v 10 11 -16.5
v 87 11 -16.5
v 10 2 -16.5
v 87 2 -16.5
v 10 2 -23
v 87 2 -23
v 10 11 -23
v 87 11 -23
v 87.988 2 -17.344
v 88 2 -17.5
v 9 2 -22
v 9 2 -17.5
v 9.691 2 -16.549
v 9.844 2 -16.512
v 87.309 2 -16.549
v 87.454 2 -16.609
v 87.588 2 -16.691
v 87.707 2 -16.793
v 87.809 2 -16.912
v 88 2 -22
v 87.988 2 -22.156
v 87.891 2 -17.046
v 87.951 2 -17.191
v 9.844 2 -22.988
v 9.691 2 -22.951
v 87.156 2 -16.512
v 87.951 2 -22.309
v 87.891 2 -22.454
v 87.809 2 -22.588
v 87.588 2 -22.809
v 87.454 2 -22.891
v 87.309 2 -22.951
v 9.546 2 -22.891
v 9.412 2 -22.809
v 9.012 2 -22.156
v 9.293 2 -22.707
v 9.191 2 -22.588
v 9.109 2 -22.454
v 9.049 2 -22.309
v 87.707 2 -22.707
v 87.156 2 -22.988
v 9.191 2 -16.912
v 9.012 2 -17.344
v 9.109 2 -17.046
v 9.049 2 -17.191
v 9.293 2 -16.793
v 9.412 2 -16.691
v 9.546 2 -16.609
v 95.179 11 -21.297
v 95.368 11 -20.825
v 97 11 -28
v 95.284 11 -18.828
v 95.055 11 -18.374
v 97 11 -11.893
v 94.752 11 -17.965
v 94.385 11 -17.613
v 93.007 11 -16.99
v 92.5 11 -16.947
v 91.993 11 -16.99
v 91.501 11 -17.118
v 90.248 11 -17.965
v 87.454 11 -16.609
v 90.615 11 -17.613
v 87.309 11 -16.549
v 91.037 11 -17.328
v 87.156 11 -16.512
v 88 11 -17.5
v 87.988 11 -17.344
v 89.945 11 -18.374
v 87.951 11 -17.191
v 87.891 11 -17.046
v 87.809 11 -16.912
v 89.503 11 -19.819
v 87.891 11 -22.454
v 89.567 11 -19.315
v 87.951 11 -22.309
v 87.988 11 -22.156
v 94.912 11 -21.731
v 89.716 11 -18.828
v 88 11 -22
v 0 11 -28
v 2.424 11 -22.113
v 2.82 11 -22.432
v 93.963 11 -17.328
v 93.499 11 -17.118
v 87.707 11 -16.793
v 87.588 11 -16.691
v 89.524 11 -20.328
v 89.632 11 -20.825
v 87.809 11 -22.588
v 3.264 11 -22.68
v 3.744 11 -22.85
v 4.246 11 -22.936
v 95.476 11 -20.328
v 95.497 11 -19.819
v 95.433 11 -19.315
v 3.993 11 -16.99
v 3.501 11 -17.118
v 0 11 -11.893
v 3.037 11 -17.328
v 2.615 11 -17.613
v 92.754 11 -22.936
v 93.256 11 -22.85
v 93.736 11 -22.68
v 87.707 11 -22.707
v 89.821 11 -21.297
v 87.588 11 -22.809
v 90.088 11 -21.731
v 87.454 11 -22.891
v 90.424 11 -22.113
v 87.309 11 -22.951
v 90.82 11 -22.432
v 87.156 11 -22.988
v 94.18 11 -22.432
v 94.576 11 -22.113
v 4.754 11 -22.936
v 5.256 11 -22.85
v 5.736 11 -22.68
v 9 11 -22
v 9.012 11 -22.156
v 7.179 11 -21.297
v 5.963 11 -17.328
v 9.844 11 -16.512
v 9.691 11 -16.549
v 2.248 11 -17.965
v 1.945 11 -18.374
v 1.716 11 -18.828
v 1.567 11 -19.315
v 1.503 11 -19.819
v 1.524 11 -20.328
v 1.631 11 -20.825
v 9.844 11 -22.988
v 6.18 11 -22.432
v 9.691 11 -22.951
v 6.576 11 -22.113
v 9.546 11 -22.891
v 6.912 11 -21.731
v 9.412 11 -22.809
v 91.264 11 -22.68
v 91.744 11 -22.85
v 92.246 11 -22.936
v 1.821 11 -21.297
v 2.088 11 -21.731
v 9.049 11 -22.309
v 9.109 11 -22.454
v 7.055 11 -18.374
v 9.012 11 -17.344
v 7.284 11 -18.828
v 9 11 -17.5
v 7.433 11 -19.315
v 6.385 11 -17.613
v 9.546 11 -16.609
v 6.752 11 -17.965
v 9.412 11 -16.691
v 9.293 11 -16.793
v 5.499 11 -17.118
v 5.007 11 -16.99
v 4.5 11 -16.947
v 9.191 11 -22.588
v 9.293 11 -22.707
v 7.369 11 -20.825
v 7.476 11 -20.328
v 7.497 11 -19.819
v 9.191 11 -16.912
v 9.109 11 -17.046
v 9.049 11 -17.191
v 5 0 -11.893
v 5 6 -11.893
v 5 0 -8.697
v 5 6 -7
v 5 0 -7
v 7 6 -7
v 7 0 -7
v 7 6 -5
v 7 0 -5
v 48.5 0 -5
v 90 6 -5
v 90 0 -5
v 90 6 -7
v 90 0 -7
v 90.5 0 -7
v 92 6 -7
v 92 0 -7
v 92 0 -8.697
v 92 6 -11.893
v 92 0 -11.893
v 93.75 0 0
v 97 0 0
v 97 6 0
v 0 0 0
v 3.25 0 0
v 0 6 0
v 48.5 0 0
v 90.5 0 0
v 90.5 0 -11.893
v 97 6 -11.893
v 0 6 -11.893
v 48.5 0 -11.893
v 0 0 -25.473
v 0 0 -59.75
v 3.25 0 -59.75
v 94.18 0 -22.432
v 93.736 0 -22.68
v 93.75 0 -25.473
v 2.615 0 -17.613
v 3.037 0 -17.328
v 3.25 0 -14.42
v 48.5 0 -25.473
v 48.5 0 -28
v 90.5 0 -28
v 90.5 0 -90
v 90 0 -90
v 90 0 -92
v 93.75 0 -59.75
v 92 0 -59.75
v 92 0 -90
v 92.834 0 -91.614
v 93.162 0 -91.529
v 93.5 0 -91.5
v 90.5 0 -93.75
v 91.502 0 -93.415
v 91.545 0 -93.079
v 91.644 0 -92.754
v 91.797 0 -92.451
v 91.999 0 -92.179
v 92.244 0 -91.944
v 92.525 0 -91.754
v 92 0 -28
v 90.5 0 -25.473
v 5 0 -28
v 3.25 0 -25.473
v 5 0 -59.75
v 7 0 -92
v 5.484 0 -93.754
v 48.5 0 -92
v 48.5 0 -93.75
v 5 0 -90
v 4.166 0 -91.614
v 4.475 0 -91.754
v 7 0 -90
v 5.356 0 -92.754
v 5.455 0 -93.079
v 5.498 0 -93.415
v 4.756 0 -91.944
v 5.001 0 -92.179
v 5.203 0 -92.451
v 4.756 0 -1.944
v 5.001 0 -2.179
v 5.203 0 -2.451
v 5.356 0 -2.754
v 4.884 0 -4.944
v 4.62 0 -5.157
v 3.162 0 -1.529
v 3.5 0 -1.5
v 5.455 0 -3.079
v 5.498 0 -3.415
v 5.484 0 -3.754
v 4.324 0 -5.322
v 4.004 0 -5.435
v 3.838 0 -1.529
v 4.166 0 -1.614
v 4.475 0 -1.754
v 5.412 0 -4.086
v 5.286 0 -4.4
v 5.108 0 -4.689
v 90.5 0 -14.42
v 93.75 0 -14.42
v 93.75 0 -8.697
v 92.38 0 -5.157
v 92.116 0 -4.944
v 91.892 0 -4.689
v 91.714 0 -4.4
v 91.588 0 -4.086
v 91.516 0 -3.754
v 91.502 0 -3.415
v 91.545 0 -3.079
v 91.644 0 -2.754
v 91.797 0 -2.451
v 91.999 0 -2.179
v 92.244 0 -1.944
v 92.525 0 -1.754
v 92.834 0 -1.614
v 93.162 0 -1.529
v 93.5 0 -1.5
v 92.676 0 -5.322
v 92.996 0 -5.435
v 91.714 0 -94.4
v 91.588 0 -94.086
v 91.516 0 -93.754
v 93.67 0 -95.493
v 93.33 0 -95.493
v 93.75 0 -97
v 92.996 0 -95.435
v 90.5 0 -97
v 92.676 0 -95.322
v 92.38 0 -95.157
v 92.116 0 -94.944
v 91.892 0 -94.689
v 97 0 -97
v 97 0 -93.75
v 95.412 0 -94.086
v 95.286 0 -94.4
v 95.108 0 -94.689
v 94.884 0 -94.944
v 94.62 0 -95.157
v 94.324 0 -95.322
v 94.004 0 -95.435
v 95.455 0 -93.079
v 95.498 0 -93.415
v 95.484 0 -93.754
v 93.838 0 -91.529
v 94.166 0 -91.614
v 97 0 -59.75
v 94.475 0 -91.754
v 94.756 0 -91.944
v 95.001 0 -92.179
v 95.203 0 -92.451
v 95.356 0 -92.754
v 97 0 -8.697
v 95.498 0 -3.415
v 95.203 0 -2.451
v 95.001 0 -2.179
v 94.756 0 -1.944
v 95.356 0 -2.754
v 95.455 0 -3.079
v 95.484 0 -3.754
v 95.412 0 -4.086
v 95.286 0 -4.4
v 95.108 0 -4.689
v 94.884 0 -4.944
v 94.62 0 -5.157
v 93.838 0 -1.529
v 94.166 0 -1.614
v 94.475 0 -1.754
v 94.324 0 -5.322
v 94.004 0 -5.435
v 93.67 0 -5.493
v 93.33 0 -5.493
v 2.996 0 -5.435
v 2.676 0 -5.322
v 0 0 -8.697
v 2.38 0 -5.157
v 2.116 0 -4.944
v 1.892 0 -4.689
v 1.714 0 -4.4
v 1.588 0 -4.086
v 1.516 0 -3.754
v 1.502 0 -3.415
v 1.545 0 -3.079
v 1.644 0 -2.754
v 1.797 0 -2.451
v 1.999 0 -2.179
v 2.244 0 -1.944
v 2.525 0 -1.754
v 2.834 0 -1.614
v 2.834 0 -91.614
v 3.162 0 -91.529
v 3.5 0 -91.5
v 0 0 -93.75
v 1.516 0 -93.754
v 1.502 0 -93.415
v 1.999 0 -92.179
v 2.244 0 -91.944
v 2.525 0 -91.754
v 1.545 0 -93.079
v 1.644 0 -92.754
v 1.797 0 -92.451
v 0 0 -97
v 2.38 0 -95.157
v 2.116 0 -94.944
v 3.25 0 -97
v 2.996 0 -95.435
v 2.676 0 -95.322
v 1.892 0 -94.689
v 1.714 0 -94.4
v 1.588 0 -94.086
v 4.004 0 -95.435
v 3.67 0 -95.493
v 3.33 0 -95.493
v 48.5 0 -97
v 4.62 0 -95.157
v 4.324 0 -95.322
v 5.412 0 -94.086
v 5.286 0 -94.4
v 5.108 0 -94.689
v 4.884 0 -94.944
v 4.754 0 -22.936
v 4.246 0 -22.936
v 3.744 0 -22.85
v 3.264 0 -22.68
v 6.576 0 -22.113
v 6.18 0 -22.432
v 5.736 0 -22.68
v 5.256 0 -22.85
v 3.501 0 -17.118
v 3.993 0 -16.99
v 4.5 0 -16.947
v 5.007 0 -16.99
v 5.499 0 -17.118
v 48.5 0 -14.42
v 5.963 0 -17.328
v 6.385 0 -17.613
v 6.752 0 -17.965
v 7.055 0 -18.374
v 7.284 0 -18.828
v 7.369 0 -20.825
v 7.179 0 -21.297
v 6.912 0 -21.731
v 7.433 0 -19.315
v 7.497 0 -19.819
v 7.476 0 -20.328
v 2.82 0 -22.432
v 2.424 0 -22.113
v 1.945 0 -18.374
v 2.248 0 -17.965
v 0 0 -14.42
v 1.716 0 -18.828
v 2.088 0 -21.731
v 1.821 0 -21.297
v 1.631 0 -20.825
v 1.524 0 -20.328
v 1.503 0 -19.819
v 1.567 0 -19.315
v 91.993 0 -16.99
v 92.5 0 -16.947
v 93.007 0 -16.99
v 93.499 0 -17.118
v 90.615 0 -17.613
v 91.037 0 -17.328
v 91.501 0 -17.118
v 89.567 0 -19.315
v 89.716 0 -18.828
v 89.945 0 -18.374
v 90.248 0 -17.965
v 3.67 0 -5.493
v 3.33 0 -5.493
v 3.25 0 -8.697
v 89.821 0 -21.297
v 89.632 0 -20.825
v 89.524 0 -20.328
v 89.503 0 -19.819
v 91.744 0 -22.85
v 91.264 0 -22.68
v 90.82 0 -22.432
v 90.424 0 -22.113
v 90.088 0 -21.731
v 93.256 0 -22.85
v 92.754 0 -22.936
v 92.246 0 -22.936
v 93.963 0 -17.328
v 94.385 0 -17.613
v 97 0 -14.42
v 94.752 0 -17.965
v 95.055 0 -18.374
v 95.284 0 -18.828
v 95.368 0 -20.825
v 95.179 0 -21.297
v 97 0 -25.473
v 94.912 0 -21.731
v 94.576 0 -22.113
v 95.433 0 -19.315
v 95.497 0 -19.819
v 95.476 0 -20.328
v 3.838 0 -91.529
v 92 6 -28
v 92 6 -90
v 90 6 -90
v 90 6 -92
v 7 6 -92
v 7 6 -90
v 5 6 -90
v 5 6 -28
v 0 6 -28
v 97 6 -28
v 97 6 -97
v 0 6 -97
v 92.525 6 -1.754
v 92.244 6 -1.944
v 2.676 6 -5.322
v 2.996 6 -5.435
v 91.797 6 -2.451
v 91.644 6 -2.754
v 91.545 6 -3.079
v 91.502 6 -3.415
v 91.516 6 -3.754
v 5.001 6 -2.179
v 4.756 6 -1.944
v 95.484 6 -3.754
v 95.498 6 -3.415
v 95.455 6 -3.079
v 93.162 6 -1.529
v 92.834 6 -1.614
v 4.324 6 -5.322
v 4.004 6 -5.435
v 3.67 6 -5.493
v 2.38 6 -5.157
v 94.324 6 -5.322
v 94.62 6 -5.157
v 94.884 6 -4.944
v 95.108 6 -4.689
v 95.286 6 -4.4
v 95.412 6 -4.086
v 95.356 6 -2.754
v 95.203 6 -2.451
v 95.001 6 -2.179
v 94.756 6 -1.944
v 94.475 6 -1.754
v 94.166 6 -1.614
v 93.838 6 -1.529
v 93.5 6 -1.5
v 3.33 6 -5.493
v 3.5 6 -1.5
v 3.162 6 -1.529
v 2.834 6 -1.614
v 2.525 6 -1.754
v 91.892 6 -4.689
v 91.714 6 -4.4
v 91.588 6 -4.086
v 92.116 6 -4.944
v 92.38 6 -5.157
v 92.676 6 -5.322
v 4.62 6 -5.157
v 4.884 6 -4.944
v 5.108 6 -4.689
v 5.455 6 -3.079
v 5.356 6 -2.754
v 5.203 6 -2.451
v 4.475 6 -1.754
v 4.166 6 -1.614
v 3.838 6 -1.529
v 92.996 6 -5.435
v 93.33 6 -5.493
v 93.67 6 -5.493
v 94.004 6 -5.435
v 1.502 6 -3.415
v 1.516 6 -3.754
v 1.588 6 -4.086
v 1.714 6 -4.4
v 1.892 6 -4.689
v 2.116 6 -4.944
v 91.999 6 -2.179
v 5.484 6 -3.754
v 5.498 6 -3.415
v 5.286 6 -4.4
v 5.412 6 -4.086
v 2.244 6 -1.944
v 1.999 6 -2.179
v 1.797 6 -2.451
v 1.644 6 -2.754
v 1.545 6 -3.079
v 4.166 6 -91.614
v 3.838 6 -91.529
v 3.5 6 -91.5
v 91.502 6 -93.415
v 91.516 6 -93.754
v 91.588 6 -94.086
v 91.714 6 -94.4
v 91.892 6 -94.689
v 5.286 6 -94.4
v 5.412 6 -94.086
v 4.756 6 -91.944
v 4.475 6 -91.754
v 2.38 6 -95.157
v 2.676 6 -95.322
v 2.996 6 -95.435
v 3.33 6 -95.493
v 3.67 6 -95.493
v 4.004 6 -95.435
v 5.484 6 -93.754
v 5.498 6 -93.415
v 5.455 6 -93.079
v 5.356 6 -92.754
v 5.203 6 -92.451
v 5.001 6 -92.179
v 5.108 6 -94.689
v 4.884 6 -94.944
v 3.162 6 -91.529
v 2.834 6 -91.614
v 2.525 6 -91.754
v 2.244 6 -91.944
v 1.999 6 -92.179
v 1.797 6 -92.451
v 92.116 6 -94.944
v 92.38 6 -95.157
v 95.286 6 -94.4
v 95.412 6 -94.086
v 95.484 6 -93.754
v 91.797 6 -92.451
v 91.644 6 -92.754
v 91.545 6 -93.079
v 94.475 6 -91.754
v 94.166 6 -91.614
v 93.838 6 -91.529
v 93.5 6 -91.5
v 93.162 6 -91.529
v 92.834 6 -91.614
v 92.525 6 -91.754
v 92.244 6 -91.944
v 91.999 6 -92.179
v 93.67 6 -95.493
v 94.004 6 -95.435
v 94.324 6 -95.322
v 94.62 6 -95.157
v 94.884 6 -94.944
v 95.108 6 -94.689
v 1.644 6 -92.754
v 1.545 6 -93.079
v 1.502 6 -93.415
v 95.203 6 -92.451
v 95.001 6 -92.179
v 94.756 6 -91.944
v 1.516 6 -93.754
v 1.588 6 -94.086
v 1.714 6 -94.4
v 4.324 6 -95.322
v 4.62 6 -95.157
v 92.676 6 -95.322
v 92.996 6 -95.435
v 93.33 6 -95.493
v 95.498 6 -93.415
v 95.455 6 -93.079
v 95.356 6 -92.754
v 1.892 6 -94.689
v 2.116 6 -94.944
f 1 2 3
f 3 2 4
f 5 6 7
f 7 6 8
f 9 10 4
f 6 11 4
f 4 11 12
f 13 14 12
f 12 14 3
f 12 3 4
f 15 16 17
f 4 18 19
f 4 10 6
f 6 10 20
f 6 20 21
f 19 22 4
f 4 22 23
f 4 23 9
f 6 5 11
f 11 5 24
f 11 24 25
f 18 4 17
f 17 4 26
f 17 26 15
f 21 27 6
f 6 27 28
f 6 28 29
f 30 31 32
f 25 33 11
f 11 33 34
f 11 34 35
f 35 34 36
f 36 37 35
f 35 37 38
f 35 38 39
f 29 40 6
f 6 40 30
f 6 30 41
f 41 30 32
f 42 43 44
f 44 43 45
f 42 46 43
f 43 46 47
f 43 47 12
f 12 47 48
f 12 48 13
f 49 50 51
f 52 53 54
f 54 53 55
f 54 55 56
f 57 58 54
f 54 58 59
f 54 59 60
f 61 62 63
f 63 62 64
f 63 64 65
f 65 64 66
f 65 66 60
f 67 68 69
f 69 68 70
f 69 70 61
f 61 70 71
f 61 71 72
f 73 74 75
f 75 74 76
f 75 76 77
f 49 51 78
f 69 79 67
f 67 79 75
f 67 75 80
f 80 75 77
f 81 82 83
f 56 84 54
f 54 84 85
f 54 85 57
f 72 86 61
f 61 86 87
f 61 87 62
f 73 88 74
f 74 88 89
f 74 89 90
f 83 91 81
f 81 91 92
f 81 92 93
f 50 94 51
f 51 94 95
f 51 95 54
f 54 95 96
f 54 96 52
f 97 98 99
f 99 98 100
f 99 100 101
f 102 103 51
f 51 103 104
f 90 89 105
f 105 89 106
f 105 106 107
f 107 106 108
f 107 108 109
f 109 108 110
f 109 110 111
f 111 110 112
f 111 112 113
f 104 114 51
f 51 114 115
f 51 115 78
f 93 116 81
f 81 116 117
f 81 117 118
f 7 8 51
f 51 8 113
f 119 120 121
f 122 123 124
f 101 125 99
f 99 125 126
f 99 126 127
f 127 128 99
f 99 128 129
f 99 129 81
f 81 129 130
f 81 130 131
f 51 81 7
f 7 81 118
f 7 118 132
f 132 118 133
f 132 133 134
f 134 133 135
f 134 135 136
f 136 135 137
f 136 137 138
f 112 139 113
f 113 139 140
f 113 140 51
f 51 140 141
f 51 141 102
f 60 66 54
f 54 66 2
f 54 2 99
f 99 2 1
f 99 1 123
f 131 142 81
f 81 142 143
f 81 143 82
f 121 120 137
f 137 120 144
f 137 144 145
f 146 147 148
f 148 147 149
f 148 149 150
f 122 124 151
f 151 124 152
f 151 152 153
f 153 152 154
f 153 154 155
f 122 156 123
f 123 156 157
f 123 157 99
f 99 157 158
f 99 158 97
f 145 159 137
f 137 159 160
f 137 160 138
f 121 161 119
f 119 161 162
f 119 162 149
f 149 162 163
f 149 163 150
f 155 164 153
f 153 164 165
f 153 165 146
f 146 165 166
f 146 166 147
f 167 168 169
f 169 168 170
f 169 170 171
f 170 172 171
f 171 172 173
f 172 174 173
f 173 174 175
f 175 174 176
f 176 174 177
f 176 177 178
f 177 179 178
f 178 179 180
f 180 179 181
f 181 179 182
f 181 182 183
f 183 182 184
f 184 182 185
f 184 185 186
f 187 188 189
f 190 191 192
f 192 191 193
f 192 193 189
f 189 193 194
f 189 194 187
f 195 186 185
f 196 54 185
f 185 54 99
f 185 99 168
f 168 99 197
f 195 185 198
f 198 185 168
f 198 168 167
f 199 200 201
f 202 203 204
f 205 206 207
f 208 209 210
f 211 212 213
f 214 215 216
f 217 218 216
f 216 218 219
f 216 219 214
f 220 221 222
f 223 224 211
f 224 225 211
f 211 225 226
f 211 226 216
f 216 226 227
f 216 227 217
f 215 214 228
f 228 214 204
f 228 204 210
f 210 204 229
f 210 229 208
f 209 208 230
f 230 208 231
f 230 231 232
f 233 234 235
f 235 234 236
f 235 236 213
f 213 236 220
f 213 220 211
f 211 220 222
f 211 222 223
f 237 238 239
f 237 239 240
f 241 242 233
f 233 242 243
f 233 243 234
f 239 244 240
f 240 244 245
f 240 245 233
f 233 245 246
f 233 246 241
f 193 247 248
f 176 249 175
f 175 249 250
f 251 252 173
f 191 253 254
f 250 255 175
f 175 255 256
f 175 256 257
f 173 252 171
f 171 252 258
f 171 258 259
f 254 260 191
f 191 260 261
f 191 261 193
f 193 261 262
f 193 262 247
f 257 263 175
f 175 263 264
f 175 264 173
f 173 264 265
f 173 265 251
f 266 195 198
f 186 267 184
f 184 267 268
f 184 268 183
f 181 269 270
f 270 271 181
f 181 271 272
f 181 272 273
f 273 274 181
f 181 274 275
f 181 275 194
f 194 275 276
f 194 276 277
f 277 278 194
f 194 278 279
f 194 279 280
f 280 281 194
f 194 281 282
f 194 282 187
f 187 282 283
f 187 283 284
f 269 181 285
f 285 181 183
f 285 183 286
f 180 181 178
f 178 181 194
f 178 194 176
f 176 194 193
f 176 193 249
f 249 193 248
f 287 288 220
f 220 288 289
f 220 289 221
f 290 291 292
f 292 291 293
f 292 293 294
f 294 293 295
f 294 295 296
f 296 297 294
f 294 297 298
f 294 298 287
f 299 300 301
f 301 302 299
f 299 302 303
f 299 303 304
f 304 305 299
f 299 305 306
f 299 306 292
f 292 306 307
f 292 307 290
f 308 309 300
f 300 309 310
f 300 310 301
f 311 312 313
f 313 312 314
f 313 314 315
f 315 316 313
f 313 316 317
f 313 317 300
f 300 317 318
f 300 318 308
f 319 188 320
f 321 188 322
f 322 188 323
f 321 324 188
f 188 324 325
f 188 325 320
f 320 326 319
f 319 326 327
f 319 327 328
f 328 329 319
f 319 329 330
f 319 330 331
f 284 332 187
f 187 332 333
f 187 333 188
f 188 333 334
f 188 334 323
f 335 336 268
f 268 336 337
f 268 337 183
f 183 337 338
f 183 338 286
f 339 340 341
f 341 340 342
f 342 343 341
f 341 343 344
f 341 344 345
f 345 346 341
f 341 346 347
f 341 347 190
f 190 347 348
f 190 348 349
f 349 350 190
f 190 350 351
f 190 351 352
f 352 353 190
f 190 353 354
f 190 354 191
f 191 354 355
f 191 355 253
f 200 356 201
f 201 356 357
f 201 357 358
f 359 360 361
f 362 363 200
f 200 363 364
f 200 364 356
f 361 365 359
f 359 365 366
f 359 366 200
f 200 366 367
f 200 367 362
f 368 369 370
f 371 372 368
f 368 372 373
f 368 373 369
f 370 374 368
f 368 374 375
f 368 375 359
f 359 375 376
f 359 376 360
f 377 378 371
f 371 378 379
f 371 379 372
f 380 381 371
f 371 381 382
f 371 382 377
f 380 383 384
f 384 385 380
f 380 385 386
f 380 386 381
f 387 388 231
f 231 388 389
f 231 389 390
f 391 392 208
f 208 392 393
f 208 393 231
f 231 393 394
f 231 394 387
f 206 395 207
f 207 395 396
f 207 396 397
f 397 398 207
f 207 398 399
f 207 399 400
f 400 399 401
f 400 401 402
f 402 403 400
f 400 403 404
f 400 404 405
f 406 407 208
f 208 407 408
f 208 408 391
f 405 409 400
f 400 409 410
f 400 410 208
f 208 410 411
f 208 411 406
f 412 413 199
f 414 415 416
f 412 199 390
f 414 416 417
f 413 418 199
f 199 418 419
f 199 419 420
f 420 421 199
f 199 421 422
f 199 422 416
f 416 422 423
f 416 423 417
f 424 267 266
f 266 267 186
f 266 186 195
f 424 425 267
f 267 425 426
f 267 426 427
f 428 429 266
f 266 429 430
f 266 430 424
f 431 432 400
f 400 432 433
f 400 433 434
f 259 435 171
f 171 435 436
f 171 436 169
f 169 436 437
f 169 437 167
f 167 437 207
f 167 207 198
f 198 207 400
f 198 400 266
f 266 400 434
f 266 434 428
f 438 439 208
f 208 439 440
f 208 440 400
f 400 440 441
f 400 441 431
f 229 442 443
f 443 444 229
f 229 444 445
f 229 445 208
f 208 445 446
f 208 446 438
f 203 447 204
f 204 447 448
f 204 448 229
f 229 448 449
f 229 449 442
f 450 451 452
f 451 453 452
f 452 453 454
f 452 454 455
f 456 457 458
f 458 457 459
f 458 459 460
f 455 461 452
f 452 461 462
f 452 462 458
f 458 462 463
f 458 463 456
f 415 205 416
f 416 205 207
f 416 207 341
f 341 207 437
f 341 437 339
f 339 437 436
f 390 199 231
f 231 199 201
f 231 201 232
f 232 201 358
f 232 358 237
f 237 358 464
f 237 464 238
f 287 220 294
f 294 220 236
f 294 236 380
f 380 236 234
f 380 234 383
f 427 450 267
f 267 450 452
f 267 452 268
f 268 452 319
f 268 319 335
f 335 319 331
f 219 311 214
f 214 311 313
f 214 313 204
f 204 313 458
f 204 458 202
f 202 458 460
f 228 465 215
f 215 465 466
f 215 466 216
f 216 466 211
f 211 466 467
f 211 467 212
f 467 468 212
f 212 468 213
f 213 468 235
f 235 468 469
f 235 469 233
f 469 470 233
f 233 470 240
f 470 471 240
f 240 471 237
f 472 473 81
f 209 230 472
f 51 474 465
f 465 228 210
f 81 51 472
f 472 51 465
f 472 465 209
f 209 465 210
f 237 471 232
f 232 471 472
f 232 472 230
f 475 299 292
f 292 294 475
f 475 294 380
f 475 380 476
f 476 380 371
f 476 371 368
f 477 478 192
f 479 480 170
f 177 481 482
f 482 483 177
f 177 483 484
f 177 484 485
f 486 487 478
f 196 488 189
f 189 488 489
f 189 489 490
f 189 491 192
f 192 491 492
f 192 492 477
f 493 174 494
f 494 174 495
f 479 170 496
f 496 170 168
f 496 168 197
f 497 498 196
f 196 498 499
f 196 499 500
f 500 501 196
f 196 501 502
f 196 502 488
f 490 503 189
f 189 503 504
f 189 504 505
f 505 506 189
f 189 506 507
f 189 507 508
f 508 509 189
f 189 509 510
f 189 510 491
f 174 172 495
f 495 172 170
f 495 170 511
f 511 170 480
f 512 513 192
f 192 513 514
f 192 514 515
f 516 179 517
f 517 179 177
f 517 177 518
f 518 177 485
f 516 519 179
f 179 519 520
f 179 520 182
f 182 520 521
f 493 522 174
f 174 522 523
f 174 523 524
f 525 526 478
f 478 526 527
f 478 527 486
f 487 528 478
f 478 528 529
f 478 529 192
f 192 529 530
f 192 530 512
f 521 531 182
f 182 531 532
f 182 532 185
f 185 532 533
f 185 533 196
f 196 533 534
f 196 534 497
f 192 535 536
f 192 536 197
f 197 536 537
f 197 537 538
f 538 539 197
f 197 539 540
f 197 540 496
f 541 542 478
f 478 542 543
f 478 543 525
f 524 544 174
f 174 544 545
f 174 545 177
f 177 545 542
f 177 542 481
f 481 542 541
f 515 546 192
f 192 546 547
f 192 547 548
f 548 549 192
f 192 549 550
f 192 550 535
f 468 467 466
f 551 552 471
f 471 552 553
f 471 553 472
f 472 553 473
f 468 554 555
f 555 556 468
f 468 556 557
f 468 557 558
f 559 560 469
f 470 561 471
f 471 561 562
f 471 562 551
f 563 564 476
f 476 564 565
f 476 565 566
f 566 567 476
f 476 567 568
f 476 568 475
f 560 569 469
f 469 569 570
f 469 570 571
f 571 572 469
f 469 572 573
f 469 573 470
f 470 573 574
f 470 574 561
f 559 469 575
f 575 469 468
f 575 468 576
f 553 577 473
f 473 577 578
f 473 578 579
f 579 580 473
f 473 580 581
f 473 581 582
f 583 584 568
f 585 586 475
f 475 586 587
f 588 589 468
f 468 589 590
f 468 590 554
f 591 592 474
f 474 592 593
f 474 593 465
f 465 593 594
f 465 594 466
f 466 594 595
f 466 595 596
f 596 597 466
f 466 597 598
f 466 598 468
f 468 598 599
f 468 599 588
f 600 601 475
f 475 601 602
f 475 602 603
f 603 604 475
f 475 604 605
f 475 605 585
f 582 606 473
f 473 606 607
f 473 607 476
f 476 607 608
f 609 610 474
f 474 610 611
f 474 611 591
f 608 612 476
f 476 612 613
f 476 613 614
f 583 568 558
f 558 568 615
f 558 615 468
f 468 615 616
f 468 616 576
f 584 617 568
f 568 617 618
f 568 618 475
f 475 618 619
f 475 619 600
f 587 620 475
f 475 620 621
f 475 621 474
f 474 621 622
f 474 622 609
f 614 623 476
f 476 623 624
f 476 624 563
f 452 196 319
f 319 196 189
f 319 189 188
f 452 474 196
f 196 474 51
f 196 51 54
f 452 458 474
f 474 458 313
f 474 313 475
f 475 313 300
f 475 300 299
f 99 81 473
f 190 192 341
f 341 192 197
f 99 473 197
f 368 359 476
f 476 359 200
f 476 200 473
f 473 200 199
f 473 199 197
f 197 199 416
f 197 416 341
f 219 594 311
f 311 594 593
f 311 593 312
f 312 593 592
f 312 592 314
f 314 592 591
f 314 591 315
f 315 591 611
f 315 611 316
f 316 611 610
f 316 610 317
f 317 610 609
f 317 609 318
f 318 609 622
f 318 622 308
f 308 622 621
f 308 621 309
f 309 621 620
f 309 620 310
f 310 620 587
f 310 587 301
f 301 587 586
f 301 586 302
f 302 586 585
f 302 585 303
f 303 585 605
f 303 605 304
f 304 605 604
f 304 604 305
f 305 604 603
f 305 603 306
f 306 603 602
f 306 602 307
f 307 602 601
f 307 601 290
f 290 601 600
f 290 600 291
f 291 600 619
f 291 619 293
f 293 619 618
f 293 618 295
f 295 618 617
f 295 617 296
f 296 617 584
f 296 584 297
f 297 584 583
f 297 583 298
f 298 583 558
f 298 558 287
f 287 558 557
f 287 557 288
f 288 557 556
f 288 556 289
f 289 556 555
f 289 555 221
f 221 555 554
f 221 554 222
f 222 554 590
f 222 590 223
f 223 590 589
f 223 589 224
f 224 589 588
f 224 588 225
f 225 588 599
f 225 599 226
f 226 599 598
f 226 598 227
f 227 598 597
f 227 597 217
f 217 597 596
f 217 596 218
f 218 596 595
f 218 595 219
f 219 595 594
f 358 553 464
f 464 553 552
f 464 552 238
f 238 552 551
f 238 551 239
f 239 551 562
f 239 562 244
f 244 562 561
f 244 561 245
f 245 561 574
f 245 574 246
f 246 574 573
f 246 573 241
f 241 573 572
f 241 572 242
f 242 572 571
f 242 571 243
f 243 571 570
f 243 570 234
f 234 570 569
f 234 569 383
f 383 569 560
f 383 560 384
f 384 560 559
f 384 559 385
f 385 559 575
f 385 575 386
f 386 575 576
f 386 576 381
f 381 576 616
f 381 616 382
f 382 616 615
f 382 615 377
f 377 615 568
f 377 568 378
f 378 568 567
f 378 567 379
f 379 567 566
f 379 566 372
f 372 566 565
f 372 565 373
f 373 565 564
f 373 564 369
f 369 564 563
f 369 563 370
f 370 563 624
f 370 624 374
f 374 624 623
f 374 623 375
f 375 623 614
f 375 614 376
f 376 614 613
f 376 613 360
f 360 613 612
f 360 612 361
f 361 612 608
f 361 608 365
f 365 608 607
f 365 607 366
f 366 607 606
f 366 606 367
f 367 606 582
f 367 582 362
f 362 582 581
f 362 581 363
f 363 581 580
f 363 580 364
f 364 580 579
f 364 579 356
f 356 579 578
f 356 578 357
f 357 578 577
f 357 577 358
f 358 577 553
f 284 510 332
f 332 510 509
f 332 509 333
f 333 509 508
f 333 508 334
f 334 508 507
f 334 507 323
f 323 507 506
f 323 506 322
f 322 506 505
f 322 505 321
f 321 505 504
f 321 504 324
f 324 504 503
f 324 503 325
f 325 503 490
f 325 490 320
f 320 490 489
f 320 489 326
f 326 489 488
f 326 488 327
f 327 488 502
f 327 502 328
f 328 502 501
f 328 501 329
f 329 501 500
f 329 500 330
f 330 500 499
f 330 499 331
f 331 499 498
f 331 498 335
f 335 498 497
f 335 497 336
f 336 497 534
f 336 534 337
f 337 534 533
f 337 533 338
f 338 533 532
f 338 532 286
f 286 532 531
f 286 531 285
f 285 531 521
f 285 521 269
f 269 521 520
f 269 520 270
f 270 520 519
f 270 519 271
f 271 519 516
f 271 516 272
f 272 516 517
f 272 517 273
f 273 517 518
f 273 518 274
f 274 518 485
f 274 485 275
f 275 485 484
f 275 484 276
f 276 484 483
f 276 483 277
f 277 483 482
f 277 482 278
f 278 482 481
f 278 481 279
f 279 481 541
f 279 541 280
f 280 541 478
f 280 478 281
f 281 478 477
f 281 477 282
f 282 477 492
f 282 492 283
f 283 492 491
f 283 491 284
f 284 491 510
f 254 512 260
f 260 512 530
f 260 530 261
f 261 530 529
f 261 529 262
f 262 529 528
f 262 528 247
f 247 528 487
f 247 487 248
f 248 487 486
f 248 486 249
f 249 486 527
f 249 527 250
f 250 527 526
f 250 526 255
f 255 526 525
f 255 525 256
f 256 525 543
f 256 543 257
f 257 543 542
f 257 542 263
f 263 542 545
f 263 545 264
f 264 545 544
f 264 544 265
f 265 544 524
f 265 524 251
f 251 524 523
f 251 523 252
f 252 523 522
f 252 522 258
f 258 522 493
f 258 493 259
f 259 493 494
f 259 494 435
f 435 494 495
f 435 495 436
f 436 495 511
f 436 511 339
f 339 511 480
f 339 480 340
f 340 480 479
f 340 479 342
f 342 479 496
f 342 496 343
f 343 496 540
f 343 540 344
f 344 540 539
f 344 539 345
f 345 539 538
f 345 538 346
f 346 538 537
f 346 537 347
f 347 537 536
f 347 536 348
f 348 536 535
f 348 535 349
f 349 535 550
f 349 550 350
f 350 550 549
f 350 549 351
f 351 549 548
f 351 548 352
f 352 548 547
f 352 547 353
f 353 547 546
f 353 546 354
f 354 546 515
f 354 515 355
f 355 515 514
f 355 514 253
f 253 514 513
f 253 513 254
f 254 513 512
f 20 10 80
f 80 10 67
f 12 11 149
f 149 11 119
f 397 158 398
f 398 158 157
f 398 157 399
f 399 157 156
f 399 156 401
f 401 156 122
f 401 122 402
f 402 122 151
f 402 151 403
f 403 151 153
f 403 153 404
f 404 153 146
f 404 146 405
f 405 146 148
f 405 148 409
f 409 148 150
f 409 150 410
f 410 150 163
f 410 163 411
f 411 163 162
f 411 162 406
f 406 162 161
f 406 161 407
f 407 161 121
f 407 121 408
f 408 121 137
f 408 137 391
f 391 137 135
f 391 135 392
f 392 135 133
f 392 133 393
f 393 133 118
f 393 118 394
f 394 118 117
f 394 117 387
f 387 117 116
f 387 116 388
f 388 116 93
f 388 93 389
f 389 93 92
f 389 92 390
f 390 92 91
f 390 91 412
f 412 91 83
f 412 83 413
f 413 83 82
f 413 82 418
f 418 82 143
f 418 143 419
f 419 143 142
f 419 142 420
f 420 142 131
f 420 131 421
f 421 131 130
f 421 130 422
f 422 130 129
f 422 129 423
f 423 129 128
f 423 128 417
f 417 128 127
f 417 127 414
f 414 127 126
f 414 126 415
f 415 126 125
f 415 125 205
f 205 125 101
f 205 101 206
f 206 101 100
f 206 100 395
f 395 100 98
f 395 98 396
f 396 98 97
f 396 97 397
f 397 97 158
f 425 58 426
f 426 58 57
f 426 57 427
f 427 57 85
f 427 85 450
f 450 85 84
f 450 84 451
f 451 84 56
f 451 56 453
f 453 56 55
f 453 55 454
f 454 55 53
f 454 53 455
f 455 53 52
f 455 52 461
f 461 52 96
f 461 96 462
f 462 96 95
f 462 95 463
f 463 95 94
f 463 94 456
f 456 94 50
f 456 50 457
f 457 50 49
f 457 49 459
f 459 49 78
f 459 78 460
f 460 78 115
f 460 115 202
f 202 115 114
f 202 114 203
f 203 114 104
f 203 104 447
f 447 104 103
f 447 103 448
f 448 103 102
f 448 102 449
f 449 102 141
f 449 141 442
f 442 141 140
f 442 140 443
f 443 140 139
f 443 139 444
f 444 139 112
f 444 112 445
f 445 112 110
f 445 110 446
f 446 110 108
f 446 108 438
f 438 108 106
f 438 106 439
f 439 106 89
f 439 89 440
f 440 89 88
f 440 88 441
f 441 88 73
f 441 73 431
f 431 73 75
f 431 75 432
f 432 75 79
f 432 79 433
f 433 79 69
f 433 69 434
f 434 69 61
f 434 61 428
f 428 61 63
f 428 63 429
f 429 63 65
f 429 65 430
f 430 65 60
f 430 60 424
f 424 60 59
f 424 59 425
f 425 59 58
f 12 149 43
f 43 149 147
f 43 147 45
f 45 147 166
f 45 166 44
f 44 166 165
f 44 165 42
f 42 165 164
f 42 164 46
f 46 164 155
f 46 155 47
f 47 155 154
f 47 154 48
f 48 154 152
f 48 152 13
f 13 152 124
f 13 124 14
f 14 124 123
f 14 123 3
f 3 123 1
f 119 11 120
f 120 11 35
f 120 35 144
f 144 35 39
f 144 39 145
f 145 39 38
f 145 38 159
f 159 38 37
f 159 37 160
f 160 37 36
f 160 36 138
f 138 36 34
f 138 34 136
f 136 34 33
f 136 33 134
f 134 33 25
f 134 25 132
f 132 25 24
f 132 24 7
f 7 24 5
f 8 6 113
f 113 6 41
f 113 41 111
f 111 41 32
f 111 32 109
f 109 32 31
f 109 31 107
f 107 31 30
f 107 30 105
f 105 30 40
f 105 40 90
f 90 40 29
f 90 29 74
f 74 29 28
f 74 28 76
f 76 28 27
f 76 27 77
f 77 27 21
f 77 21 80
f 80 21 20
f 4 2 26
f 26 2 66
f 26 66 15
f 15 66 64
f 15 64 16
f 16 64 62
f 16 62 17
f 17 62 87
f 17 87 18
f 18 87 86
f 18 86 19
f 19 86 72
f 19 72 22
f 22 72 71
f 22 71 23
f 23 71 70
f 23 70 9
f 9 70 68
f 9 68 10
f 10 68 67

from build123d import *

# Parameters (mm, degrees)
BOSS_EXTRUDE1_DEPTH = 6
SKETCH6_W           = 87
SKETCH6_H           = 6.5
BOSS_EXTRUDE2_DEPTH = 2
SKETCH7_W           = 97
SKETCH7_H           = 16.106562898
SKETCH7_W_2         = 87
SKETCH7_H_2         = 6.5
BOSS_EXTRUDE3_DEPTH = 5
SKETCH8_R           = 2
CUT_EXTRUDE1_DEPTH  = 138.309868546
SKETCH10_W          = 4
SKETCH10_H          = 6.5
BOSS_EXTRUDE4_DEPTH = 9
SKETCH11_R          = 3
CUT_EXTRUDE2_DEPTH  = 21
FILLET1_R           = 1


with BuildPart() as part:
    # Sketch1 → Boss-Extrude1 (new body)
    with BuildSketch(Plane(origin=(0, 0, 0), x_dir=(1, 0, 0), z_dir=(0, 1, 0))):
        Polygon((0, 7), (0, 0), (7, 0), (90, 0), (97, 0), (97, 7), (97, 90), (97, 97), (90, 97), (7, 97), (0, 97), (0, 90), align=None)
        Polygon((7, 7), (5, 7), (5, 11.893437102), (92, 11.893437102), (92, 7), (90, 7), (90, 5), (7, 5), align=None, mode=Mode.SUBTRACT)
        Polygon((5, 23), (92, 23), (92, 16.5), (5, 16.5), (5, 16.893437102), align=None, mode=Mode.SUBTRACT)
        Polygon((7, 92), (90, 92), (90, 90), (92, 90), (92, 28), (5, 28), (5, 90), (7, 90), align=None, mode=Mode.SUBTRACT)
    extrude(amount=BOSS_EXTRUDE1_DEPTH)

    # Sketch6 → Boss-Extrude2 (add)
    with BuildSketch(Plane.XZ):
        with Locations((48.5, -19.75)):
            Rectangle(SKETCH6_W, SKETCH6_H)
    extrude(amount=-BOSS_EXTRUDE2_DEPTH)

    # Sketch7 → Boss-Extrude3 (add)
    with BuildSketch(Plane(origin=(0, 6, 0), x_dir=(1, 0, 0), z_dir=(0, 1, 0))):
        with Locations((48.5, 19.946718551)):
            Rectangle(SKETCH7_W, SKETCH7_H)
        with Locations((48.5, 19.75)):
            Rectangle(SKETCH7_W_2, SKETCH7_H_2, mode=Mode.SUBTRACT)
    extrude(amount=BOSS_EXTRUDE3_DEPTH)

    # Sketch8 → Cut-Extrude1 (cut, through all)
    with BuildSketch(Plane(origin=(0, 6, 0), x_dir=(1, 0, 0), z_dir=(0, 1, 0))):
        with Locations(Location((93.5, 93.5, 0), (0, 0, 270))):
            Circle(SKETCH8_R)
        with Locations(Location((3.5, 3.5, 0), (0, 0, 270))):
            Circle(SKETCH8_R)
        with Locations(Location((3.5, 93.5, 0), (0, 0, 270))):
            Circle(SKETCH8_R)
        with Locations(Location((93.5, 3.5, 0), (0, 0, 270))):
            Circle(SKETCH8_R)
    extrude(amount=-CUT_EXTRUDE1_DEPTH, mode=Mode.SUBTRACT)

    # Sketch10 → Boss-Extrude4 (add)
    with BuildSketch(Plane(origin=(0, 2, 0), x_dir=(1, 0, 0), z_dir=(0, 1, 0))):
        with Locations((90, 19.75)):
            Rectangle(SKETCH10_W, SKETCH10_H)
        with Locations((7, 19.75)):
            Rectangle(SKETCH10_W, SKETCH10_H)
    extrude(amount=BOSS_EXTRUDE4_DEPTH)

    # Sketch11 → Cut-Extrude2 (cut)
    with BuildSketch(Plane(origin=(0, 11, 0), x_dir=(1, 0, 0), z_dir=(0, 1, 0))):
        with Locations(Location((92.5, 19.946718551, 0), (0, 0, 270))):
            Circle(SKETCH11_R)
        with Locations(Location((4.5, 19.946718551, 0), (0, 0, 270))):
            Circle(SKETCH11_R)
    extrude(amount=-CUT_EXTRUDE2_DEPTH, mode=Mode.SUBTRACT)

    # Fillet1
    fillet1_edges = [part.edges().sort_by_distance(p)[0] for p in [
        (88, 6.5, -23),
        (88, 6.5, -16.5),
        (9, 6.5, -16.5),
        (9, 6.5, -23),
    ]]
    fillet(fillet1_edges, radius=FILLET1_R)


solid = part.part
